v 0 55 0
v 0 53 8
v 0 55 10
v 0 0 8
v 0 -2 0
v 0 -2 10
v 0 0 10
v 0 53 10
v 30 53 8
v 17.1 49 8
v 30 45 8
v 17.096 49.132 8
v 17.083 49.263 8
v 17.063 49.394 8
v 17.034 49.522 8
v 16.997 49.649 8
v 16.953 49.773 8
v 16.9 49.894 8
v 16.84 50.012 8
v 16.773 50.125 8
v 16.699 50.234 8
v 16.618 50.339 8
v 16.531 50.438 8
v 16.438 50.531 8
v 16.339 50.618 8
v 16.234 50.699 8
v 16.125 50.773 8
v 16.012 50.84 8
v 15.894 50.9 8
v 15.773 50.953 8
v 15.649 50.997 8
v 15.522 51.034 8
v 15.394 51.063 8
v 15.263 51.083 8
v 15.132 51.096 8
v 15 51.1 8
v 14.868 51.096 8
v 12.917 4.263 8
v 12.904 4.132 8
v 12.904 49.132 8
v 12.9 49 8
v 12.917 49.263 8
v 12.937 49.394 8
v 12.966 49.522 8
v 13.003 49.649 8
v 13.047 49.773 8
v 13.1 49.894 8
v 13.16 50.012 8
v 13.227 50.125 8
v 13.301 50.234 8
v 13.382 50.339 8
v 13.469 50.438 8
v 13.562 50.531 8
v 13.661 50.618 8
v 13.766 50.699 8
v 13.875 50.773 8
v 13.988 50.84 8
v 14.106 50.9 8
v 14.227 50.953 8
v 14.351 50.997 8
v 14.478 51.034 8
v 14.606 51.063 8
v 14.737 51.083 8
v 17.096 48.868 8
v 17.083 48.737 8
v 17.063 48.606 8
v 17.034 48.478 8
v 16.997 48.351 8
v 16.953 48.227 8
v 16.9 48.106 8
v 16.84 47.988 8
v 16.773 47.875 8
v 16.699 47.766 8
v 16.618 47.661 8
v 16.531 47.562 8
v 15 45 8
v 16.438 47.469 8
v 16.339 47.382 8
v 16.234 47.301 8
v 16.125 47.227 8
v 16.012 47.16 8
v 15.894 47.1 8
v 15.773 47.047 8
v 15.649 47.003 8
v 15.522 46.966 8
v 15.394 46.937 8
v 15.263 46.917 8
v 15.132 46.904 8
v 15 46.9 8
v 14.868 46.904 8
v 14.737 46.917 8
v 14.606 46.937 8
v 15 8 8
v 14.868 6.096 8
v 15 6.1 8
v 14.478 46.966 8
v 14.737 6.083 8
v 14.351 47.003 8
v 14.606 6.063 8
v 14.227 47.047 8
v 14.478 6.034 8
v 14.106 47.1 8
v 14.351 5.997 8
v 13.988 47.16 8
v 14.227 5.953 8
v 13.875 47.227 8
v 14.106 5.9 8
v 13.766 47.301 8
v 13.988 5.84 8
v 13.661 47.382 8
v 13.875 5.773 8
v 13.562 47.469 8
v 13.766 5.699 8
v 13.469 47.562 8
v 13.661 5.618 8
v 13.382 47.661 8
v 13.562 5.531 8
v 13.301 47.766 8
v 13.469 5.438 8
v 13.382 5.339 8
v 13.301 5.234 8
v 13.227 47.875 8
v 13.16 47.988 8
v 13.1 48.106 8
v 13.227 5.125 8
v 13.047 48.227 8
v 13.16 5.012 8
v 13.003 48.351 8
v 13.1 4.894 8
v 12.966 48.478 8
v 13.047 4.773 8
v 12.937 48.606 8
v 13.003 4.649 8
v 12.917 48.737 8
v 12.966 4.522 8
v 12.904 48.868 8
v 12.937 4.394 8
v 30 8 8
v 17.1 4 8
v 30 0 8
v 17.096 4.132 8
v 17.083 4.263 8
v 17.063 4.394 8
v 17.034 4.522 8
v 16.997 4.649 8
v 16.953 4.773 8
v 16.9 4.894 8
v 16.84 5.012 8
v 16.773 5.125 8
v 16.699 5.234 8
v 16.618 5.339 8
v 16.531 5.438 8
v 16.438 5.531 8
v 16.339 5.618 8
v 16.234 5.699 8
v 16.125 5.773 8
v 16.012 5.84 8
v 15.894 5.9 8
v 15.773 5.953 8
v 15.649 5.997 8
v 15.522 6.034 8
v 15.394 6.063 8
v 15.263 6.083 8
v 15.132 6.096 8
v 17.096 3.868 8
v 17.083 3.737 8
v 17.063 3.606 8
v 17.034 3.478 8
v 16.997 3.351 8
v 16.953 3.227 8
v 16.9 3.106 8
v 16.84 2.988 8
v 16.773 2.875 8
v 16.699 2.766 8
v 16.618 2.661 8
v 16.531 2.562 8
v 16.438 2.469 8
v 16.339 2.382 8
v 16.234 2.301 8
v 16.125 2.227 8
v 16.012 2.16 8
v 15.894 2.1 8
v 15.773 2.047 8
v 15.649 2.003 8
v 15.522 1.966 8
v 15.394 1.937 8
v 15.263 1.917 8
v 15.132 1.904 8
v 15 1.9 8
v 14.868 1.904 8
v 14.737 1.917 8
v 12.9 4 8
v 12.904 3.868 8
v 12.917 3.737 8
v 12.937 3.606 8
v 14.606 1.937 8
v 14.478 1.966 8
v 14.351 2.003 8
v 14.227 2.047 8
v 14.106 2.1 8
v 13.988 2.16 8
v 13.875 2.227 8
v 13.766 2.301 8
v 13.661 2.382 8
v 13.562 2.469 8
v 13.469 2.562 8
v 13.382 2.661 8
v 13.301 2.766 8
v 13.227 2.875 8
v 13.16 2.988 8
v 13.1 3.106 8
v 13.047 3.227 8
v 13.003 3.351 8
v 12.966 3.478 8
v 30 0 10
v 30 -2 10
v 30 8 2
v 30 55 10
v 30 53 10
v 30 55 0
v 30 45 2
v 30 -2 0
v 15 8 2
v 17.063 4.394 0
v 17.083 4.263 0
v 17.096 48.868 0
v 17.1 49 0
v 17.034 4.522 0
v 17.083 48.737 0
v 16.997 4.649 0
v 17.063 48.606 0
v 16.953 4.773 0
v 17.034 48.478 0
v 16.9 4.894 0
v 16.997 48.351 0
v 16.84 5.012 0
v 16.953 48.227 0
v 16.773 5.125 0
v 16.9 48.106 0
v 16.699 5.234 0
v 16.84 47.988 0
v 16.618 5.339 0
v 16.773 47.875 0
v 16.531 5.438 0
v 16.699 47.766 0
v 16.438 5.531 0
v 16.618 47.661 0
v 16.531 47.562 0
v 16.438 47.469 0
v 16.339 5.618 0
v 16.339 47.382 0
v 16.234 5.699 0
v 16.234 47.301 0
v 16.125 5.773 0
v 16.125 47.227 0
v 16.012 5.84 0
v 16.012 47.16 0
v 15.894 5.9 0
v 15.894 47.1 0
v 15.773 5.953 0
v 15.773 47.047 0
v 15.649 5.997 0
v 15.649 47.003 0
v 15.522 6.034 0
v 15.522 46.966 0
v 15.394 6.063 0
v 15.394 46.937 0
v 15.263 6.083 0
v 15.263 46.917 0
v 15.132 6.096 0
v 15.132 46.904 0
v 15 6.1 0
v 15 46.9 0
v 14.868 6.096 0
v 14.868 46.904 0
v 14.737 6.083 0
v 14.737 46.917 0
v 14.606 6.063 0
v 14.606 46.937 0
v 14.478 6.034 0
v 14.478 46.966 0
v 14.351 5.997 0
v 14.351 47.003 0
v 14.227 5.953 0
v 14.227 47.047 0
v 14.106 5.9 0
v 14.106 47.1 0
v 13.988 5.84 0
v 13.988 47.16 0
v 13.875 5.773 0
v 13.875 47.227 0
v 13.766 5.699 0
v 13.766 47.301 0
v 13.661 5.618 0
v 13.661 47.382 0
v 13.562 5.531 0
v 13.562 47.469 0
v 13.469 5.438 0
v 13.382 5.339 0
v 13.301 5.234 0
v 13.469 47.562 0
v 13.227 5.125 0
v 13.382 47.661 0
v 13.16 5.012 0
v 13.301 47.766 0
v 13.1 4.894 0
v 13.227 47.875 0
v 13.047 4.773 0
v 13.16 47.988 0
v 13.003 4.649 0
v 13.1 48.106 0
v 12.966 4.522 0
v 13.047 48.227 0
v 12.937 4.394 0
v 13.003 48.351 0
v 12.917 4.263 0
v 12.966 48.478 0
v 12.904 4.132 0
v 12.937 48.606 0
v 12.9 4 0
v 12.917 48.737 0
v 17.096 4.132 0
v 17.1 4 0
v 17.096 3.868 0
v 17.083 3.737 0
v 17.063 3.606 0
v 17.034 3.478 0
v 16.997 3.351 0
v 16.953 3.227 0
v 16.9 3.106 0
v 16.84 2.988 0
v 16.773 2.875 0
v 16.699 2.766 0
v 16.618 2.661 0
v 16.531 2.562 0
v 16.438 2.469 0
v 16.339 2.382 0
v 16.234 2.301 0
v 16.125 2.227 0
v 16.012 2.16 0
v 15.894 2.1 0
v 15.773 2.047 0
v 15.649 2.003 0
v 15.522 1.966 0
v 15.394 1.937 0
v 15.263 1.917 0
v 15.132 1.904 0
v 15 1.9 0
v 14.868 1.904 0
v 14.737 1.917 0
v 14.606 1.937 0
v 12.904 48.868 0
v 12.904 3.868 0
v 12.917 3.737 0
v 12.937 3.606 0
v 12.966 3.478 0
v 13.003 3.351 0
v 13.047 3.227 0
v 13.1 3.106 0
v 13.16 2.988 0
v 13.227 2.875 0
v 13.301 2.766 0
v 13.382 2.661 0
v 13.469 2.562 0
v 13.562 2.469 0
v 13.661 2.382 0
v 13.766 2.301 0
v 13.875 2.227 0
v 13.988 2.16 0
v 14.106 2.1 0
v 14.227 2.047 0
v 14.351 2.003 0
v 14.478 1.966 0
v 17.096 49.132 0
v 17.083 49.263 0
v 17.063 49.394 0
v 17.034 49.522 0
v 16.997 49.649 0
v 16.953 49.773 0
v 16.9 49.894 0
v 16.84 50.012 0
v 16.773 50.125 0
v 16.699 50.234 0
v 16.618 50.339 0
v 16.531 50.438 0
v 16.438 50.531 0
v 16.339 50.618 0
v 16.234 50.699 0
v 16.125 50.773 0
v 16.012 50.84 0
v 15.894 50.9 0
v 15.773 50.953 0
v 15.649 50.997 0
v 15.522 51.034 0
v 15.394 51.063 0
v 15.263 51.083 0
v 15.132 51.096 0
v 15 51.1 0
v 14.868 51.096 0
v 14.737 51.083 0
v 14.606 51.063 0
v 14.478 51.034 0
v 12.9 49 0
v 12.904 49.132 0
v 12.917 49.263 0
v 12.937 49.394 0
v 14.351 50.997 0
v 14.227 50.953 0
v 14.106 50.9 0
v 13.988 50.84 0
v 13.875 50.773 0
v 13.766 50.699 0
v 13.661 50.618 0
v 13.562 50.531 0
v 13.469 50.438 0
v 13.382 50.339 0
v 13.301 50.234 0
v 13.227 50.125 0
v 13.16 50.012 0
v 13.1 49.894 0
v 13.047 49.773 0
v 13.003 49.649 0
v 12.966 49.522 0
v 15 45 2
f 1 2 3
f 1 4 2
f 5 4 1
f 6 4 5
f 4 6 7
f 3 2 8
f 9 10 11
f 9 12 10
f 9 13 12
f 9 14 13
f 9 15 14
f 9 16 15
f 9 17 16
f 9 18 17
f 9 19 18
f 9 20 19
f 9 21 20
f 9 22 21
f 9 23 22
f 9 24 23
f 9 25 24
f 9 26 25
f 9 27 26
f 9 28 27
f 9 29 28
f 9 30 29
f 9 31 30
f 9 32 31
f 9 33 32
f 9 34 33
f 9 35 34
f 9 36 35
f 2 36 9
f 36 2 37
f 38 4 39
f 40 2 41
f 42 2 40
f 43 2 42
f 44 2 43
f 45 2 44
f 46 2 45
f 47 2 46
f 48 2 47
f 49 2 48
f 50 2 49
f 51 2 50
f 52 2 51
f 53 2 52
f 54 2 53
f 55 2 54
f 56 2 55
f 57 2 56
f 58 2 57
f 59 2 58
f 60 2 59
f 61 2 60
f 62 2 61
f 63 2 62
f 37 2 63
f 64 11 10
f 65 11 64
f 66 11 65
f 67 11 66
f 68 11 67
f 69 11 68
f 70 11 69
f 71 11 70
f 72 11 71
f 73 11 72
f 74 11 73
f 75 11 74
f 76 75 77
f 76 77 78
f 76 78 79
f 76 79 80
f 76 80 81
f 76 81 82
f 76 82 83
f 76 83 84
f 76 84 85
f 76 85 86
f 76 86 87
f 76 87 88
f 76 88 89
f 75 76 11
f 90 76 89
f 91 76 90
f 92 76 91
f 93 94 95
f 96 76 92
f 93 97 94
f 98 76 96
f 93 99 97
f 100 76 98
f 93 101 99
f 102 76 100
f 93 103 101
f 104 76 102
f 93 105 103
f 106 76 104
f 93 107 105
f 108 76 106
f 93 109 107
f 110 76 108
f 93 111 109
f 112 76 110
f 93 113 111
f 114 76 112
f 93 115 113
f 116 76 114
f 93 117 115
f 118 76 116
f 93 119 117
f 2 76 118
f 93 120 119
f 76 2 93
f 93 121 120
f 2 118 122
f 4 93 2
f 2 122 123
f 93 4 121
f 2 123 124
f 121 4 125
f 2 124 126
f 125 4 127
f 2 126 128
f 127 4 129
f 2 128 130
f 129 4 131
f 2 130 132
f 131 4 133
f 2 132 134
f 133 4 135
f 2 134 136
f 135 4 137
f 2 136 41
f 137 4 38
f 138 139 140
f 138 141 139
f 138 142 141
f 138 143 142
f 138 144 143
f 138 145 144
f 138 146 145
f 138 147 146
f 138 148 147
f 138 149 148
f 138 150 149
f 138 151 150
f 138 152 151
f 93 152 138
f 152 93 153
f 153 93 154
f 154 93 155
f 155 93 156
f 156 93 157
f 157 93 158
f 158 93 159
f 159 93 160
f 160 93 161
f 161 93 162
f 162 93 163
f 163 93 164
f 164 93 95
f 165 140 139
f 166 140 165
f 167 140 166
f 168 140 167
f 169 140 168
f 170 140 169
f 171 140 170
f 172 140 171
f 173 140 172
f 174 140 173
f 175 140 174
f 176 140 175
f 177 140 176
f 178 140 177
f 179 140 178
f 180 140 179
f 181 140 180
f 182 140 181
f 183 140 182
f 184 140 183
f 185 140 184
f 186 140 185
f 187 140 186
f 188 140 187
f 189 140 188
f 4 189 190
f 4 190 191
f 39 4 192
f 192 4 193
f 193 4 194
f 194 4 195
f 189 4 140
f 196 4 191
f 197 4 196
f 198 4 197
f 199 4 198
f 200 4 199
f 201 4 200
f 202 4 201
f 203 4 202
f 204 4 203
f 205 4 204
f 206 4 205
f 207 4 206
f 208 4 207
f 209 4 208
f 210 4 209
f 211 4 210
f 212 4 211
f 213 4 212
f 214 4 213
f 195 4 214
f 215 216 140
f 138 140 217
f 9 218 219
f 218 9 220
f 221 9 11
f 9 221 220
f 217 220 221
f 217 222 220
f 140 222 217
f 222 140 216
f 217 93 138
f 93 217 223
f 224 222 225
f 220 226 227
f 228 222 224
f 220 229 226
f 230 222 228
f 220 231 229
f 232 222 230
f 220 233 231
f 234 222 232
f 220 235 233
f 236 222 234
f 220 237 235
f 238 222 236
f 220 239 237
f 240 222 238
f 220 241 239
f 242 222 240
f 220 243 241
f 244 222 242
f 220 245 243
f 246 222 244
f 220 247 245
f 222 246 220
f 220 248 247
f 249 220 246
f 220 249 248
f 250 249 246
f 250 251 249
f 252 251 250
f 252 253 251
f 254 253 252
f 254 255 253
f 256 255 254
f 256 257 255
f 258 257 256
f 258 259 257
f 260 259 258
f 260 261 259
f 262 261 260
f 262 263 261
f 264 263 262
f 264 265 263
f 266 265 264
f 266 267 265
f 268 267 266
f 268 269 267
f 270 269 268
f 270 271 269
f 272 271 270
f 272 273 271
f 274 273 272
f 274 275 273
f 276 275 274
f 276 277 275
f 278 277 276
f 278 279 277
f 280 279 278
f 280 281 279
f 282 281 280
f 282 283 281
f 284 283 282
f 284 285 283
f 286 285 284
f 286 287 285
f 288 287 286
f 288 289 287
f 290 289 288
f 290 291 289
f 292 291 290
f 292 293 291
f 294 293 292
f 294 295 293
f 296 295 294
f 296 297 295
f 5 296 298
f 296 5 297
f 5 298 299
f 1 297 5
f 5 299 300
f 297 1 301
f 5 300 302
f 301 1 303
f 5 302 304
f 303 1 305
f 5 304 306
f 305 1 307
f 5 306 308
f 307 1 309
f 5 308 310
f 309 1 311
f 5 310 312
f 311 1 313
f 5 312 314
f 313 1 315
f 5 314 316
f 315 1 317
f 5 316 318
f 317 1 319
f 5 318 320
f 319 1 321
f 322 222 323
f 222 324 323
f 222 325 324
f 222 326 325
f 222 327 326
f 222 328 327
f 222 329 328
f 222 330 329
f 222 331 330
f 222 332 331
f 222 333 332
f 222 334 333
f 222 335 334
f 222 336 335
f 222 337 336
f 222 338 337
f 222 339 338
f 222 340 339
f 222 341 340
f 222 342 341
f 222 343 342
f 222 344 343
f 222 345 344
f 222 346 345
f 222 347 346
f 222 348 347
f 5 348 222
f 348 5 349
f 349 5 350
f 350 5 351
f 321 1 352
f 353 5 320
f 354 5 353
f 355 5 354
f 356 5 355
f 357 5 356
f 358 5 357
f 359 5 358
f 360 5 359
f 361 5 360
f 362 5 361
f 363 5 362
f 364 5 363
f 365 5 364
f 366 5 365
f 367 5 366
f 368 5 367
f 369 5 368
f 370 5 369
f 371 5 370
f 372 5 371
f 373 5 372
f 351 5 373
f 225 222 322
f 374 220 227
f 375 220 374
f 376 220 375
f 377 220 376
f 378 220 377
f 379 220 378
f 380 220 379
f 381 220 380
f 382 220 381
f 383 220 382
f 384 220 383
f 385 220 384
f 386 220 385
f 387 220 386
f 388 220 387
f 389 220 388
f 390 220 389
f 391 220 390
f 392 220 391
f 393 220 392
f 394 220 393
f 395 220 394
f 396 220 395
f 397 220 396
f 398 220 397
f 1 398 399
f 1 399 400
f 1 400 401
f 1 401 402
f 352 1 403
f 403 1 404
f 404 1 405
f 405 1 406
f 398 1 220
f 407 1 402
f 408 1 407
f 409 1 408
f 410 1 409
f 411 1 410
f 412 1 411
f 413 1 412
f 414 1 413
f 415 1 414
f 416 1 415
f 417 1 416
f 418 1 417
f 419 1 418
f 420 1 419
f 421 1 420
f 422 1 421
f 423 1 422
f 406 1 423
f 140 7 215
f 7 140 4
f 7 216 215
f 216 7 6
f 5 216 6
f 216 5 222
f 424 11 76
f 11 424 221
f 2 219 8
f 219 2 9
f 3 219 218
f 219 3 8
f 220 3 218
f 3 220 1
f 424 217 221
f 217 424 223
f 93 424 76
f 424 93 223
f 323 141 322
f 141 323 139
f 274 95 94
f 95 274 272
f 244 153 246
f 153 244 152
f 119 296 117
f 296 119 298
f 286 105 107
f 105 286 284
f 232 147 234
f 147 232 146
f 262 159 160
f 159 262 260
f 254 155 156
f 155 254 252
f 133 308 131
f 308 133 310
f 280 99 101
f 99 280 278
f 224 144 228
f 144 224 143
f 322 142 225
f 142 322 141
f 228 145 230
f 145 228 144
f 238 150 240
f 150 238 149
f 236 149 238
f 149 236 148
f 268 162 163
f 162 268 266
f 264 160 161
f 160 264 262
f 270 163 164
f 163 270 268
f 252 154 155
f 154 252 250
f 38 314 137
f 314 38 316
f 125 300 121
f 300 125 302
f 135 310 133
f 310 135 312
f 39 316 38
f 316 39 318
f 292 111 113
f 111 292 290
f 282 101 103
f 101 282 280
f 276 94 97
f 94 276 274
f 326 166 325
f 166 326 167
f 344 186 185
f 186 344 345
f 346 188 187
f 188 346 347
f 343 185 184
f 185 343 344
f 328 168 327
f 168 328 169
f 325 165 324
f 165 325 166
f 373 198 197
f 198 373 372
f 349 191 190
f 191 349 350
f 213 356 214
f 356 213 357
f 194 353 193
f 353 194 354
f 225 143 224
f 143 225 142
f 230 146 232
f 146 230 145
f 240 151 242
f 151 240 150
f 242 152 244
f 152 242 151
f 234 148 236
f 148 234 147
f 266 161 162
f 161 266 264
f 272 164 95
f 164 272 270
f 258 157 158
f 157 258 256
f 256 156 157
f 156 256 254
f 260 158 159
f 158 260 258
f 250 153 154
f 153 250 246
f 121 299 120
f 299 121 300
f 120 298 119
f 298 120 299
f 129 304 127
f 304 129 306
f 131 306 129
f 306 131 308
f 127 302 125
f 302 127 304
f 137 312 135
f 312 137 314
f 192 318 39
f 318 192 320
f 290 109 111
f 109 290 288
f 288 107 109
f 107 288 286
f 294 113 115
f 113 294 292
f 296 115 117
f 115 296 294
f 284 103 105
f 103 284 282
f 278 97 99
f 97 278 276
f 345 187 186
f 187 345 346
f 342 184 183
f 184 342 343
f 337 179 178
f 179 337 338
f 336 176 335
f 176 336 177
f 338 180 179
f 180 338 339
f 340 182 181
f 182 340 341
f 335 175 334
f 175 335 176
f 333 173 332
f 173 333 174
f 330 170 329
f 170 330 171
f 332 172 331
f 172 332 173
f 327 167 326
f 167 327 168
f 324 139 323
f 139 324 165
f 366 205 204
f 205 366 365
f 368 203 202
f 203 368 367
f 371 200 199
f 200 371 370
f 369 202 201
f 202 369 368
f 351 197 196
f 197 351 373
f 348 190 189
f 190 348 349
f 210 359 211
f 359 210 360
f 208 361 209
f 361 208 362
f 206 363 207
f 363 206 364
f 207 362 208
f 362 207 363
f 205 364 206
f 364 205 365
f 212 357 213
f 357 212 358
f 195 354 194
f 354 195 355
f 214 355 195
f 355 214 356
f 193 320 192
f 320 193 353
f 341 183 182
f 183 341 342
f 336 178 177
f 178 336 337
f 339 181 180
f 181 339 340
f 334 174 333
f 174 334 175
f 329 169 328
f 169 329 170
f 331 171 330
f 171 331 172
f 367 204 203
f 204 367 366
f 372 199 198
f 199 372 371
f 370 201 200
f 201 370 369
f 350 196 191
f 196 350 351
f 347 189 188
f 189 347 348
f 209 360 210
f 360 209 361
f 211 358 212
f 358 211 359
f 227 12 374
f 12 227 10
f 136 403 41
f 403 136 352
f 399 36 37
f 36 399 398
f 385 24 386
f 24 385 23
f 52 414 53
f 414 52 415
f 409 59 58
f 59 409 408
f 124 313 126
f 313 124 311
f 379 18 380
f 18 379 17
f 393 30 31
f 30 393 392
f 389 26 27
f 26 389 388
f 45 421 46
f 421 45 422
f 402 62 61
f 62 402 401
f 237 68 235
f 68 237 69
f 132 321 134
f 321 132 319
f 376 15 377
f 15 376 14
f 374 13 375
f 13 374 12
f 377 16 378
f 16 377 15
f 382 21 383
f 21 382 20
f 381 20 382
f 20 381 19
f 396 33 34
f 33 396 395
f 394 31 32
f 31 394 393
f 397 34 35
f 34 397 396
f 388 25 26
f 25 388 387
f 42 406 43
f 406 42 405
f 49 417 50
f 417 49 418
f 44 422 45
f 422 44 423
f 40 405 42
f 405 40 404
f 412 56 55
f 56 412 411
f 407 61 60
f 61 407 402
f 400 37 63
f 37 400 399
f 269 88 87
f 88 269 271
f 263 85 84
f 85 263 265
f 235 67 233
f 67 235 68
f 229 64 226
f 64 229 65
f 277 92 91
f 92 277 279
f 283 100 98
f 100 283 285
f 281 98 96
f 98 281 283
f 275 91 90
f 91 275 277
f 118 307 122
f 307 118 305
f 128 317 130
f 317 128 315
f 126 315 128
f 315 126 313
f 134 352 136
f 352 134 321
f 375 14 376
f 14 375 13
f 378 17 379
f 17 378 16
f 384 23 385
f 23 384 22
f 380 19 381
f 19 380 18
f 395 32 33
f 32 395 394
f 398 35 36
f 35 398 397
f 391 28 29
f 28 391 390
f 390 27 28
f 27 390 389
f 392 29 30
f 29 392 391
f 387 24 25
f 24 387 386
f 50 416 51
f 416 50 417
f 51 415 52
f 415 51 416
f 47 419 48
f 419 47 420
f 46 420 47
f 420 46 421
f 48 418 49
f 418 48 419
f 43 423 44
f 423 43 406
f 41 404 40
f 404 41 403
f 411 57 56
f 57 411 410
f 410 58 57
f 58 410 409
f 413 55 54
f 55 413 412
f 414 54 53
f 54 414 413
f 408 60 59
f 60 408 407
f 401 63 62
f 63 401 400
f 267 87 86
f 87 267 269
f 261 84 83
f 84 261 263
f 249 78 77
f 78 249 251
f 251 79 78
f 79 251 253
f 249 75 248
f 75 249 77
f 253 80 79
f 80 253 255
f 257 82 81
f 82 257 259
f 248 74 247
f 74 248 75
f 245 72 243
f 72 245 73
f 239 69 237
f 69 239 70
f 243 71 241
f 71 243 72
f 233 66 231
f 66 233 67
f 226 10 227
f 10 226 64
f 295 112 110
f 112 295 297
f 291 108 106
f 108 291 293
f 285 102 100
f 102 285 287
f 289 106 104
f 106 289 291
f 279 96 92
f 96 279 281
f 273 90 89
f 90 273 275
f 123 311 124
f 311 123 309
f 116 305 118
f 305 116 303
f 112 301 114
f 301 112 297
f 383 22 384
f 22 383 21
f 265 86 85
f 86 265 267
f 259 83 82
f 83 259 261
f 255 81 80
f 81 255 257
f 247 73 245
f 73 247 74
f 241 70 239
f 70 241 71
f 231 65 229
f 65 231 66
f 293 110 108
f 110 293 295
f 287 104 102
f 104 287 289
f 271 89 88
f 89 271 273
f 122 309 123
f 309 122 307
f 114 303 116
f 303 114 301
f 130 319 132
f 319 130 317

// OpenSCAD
terminal_grp_cnt = 2; //x2
terminal_grp_len = 2 * 8.5; //mm

terminal_grp_pos_x = 15; //mm
terminal_grp_pos_y = 18; //mm

terminal_bed_hight = 2; //mm

body_hight = 8; //mm
body_len = 30; //mm
body_width = 8; //mm
body_grp_width = 36 - terminal_grp_len; //mm
body_full_width = body_grp_width + terminal_grp_cnt * terminal_grp_len;

hole_dia = 4.2; //mm
hole_pos_x = 15; //mm
hole_pos_y = 4; //mm

border_hight = 2; //mm
border_width = 2; //mm

$fn = 100;

echo("full width = ", body_full_width);

module foot() {
    translate([0, 0, 0])
        cube([body_len, body_width, body_hight]);
    translate([0, -border_width, 0])
        cube([body_len, border_width, border_hight + body_hight]);
}

difference() {
    union() {
        translate([0, 0, 0])
            rotate(0)
                foot();
        translate([0, body_full_width, 0])
            mirror([0, 1, 0])
                foot();
        cube([body_len, body_full_width, terminal_bed_hight]);
        cube([hole_pos_x, body_full_width, body_hight]);
    }
    union() {
        translate([hole_pos_x, hole_pos_y, 0])
            cylinder(body_hight, r = hole_dia / 2);
        translate([hole_pos_x, body_full_width - hole_pos_y, 0])
            cylinder(body_hight, r = hole_dia / 2);
    }
}
